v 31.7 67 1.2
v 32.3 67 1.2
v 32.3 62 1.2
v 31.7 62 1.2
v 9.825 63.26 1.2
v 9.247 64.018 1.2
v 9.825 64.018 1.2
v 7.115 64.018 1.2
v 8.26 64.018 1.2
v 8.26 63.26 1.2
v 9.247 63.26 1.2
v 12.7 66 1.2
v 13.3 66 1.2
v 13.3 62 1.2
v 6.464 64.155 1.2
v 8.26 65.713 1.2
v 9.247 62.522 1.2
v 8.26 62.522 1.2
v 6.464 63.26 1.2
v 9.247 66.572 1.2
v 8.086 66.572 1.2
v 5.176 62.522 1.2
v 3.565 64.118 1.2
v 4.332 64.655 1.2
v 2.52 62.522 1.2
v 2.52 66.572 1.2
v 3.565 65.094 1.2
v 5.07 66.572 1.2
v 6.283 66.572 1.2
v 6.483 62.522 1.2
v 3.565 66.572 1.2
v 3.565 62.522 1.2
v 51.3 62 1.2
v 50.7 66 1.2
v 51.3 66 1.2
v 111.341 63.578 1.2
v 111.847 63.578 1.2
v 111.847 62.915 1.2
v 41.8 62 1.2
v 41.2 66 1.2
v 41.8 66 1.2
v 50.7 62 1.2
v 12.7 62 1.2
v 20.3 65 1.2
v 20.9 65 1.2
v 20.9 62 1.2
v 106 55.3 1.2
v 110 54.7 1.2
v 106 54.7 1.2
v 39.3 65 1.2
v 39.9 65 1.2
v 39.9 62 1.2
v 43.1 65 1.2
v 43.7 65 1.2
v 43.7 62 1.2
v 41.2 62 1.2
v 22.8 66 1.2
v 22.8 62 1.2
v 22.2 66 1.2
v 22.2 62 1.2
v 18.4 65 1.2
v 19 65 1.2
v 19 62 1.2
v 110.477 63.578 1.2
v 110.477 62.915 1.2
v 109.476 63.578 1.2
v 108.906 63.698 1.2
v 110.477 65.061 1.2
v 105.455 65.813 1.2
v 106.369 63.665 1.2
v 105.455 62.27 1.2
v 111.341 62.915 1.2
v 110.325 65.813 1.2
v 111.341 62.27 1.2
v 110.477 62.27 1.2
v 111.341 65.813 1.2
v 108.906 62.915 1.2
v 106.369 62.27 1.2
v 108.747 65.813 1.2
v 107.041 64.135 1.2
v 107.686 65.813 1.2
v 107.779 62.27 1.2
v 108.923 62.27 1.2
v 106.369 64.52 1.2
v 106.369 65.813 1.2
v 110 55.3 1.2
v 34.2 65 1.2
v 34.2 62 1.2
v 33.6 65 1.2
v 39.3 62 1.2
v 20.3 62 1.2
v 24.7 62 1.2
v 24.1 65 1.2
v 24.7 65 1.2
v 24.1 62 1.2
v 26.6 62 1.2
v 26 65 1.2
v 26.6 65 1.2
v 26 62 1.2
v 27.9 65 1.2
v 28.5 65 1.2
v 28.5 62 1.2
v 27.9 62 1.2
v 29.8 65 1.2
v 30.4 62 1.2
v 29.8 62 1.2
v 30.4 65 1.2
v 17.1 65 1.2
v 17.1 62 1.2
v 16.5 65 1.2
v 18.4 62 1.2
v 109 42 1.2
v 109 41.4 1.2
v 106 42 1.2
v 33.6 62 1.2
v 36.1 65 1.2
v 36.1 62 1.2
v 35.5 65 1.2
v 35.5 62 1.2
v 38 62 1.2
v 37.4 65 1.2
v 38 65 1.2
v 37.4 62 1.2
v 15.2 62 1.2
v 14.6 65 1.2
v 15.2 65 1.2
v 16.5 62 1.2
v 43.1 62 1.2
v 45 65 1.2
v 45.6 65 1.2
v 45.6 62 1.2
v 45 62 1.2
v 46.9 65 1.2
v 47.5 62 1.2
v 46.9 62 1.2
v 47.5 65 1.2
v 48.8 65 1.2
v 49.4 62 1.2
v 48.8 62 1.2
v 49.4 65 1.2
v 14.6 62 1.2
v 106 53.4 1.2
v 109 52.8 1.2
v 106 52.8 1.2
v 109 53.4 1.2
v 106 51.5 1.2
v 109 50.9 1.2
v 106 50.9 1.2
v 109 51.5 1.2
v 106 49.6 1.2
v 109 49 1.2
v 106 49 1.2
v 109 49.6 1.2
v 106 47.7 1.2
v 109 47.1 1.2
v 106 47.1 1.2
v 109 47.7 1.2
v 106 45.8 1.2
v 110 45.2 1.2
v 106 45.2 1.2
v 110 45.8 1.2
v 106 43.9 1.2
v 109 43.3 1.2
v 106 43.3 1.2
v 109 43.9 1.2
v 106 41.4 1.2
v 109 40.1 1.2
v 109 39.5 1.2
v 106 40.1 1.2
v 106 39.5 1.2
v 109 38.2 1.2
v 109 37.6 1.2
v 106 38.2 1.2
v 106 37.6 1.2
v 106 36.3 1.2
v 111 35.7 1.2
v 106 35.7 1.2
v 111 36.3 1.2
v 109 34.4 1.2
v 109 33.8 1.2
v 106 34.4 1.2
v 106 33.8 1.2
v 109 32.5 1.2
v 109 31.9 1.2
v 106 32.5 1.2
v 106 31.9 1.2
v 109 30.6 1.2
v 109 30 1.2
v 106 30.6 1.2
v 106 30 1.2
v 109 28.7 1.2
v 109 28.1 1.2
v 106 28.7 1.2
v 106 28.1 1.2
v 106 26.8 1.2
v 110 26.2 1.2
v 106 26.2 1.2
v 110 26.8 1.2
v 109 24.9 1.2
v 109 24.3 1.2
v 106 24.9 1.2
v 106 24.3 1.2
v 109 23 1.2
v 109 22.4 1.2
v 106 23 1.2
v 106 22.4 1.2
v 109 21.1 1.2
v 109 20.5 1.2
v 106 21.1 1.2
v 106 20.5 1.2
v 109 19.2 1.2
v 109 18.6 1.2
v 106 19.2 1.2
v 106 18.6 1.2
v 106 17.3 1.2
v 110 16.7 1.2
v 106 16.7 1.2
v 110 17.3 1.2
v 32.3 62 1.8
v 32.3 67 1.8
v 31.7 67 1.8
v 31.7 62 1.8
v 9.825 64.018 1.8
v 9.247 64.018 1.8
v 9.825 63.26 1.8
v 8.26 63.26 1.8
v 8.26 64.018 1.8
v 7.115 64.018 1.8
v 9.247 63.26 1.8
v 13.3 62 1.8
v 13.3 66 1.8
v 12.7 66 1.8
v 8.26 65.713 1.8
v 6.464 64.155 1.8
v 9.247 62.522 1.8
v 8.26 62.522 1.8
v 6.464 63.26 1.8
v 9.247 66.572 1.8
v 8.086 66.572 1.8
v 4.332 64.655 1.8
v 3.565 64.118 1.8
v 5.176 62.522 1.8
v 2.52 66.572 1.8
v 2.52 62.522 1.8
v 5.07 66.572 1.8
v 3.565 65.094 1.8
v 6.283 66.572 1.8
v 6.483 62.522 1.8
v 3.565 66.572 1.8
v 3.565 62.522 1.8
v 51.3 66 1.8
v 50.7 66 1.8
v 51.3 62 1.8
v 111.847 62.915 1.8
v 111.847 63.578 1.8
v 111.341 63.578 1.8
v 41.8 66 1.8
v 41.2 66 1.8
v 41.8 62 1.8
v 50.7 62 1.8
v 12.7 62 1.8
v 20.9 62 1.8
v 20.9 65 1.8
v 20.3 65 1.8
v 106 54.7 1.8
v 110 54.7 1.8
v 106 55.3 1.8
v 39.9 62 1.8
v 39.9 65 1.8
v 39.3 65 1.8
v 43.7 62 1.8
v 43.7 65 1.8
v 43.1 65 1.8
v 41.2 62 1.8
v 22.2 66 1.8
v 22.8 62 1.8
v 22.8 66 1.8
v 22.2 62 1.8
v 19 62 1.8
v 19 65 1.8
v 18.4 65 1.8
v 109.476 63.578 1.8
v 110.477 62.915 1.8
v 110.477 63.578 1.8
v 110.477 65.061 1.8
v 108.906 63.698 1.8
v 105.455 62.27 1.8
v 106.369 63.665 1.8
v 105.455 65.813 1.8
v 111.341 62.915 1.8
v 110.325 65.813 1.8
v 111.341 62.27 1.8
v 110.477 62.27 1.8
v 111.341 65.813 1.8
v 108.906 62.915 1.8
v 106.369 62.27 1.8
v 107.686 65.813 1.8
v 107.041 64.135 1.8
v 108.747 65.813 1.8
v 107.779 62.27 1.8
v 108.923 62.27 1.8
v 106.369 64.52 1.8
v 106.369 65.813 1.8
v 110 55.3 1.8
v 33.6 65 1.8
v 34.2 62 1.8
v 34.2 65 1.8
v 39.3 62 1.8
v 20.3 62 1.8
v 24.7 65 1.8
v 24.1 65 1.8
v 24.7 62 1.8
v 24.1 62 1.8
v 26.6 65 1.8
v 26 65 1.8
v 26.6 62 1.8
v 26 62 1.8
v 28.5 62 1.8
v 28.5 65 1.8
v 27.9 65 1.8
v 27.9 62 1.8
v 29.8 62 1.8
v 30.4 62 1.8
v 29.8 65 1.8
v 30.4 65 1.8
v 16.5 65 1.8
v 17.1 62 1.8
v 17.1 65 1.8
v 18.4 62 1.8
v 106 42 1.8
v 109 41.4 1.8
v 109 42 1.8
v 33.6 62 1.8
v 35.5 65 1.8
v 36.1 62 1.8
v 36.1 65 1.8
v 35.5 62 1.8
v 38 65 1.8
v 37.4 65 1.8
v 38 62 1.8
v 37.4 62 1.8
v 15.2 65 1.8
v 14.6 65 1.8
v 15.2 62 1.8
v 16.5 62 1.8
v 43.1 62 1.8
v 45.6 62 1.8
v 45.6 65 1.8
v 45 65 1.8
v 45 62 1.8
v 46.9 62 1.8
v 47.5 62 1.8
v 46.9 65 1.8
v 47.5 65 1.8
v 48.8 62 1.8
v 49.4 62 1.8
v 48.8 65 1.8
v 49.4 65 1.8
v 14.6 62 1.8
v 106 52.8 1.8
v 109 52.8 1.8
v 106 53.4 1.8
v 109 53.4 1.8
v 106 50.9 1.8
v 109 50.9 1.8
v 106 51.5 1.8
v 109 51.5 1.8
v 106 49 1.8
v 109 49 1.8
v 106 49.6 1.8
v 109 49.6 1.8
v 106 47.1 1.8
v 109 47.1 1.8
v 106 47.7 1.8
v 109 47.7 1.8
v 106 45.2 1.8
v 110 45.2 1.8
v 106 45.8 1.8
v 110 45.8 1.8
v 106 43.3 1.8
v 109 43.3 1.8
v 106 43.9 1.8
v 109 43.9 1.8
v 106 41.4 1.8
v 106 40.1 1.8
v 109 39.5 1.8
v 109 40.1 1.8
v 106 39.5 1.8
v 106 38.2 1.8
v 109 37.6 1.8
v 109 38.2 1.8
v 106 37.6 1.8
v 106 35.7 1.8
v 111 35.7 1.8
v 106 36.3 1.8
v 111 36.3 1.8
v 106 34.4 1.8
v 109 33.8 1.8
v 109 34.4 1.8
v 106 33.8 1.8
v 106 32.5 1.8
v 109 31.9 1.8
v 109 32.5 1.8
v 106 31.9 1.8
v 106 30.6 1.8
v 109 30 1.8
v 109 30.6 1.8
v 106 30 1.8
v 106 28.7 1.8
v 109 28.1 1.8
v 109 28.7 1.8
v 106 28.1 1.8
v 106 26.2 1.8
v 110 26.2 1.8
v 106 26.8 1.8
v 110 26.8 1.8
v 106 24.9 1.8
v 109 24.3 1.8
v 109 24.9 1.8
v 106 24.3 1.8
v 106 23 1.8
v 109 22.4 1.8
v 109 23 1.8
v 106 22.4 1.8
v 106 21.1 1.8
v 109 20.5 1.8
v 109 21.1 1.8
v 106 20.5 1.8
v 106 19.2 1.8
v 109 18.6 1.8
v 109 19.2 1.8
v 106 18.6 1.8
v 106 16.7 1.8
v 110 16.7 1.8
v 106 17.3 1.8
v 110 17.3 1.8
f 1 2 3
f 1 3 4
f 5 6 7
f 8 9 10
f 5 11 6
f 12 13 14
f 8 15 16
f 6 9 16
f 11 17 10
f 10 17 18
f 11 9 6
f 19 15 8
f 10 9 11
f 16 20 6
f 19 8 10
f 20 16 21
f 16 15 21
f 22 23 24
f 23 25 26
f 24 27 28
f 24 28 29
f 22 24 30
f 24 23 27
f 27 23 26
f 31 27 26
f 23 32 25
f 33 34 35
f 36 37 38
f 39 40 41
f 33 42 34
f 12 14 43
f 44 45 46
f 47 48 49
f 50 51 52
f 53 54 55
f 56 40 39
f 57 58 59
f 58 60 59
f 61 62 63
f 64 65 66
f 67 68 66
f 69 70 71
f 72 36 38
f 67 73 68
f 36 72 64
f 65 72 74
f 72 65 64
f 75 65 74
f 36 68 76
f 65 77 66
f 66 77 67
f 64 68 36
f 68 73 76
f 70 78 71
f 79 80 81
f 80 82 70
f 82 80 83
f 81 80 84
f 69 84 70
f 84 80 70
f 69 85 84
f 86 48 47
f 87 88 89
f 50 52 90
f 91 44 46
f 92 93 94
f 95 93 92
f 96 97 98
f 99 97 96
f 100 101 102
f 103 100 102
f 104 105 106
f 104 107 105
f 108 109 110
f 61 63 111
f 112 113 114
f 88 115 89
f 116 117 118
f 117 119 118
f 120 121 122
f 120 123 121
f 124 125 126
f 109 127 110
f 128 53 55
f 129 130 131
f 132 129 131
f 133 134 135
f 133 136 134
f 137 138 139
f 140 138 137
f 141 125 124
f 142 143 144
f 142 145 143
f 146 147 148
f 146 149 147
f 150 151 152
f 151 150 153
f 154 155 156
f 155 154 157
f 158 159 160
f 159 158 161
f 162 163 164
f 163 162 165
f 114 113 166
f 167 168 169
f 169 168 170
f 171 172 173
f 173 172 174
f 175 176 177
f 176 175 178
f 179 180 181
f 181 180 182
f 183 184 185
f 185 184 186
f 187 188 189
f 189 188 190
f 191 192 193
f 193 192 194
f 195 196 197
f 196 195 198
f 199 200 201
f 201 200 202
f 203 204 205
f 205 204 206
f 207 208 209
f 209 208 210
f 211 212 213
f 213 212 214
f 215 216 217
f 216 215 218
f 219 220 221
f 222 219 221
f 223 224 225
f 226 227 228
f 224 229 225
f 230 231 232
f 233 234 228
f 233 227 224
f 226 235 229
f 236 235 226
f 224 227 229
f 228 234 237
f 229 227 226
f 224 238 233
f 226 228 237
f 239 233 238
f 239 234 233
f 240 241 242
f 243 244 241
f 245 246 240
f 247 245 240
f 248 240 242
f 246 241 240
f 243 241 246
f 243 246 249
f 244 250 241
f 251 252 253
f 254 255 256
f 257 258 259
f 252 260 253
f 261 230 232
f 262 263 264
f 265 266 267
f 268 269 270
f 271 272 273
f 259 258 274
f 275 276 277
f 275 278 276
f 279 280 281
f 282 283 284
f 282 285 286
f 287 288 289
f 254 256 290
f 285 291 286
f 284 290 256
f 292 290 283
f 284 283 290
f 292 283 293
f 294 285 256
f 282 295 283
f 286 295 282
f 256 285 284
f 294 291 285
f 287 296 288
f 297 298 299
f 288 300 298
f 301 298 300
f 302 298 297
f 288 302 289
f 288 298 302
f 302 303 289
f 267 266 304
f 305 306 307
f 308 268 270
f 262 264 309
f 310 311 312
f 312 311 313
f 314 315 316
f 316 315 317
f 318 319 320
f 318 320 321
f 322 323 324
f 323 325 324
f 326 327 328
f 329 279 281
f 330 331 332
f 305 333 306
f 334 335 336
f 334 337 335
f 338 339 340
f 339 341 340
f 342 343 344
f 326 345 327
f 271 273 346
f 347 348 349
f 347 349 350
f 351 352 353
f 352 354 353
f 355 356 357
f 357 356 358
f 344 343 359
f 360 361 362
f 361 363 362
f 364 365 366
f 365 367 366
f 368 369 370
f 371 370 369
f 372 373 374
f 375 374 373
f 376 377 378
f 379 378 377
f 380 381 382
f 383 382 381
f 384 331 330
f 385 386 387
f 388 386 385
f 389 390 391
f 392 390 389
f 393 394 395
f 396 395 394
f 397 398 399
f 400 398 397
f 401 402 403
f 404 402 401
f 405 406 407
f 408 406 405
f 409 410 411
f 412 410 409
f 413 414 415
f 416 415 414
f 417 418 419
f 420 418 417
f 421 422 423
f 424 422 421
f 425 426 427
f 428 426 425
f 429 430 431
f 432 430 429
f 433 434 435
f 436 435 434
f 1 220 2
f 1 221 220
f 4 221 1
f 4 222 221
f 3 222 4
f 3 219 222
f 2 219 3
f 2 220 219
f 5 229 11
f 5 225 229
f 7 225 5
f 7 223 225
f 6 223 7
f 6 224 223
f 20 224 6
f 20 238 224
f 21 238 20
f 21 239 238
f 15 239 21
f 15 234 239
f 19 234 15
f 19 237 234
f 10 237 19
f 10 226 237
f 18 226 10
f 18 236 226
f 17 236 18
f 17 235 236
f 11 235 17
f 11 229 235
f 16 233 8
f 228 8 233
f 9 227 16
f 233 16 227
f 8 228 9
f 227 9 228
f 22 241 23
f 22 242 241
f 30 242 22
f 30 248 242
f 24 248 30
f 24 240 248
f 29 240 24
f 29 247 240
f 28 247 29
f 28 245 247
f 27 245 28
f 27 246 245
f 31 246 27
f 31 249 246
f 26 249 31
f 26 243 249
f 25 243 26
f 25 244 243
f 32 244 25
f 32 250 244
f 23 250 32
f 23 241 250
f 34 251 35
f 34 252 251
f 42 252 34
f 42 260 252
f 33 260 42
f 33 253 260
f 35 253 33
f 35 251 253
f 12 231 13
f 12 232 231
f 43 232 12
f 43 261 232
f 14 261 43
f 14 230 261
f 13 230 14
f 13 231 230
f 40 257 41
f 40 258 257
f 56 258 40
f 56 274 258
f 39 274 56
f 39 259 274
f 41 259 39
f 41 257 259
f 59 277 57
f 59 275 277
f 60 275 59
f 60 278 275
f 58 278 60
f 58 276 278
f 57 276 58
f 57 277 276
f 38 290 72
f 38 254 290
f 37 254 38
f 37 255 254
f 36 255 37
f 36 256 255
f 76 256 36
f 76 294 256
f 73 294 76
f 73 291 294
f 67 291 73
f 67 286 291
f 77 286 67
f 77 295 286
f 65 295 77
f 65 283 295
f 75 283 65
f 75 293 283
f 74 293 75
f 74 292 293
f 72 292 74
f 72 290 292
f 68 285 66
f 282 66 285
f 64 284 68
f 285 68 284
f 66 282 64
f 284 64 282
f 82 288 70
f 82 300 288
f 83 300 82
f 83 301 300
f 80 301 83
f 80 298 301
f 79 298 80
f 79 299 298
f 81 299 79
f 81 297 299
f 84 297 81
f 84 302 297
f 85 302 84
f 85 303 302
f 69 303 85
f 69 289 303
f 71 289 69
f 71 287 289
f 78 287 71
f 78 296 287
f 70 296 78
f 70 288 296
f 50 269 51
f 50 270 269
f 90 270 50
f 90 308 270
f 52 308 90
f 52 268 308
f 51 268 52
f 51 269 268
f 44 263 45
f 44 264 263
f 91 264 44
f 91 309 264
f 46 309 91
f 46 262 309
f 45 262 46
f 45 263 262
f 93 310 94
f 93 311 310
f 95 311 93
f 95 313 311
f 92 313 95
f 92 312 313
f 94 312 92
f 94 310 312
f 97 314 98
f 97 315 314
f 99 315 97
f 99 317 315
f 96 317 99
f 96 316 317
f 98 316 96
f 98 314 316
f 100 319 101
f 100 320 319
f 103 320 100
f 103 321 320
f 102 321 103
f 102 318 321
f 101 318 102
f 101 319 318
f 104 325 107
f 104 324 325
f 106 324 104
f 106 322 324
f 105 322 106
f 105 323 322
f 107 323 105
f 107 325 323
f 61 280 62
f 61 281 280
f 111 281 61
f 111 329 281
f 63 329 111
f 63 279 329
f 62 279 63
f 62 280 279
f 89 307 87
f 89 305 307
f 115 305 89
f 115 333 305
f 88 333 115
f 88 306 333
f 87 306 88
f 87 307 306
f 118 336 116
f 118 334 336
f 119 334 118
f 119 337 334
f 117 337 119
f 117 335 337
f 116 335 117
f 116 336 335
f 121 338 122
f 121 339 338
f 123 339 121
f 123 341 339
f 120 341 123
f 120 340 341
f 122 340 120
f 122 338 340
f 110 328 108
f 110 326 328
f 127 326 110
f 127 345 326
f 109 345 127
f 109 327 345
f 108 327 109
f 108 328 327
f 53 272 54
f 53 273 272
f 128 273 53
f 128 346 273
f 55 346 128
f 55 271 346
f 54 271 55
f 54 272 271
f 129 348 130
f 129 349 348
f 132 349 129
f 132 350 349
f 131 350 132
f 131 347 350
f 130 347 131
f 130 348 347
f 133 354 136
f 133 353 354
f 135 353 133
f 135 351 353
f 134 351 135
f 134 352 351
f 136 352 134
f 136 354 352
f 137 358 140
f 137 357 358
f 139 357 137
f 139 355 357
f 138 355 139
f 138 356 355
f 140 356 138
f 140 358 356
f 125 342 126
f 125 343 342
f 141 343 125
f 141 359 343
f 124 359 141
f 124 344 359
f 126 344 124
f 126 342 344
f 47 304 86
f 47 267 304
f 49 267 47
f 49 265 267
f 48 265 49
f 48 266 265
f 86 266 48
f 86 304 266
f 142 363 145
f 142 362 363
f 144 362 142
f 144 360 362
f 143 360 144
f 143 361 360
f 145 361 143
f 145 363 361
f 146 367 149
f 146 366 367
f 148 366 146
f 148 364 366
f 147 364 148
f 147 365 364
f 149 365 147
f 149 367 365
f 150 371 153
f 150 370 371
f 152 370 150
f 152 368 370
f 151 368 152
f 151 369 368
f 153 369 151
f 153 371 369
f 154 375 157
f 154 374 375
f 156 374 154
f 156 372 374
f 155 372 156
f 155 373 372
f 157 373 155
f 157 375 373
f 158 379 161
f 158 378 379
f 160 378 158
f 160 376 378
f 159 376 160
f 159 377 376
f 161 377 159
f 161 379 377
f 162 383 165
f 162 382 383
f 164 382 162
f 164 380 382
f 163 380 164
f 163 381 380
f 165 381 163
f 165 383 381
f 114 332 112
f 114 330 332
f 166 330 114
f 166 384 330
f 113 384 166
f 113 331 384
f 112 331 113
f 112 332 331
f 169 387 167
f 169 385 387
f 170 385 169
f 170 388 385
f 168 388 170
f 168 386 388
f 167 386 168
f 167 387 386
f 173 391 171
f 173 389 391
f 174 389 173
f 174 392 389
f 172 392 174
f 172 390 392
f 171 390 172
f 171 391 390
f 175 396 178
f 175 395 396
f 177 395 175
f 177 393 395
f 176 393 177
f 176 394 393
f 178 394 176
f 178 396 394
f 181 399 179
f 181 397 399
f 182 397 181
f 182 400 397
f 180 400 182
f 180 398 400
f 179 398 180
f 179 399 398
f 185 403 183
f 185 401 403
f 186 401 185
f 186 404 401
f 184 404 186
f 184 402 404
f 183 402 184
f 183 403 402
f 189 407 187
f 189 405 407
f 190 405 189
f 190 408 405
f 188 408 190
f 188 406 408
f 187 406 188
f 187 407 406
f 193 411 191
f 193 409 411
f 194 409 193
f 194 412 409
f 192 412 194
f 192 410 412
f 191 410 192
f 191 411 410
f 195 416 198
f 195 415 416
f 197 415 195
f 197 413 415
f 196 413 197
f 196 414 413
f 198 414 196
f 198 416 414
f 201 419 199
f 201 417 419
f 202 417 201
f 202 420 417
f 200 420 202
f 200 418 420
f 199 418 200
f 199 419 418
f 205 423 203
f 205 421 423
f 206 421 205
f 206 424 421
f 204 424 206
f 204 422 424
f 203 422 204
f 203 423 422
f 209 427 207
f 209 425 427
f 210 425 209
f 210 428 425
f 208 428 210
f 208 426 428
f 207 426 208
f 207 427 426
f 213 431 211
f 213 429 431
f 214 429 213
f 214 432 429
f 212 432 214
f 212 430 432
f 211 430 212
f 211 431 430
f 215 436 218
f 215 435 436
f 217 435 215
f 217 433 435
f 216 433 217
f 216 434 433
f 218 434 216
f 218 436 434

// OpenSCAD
// file: versatz.scad
// Kalibrierung 3 – Kopf-Versatz (Vier-Kopf-Passermarke). Gemeinsame Geometrie für versatz_k1…k4.scad.
// Grundplatte + Hauptskalen = Kopf 1. Je Kopf 2–4 ein Nonius in X (Zeilen) und in Y (Spalten) + Beschriftung.
// Hauptskala Teilung 2,0 mm, Nonius 1,9 mm → Ablesung 0,1 mm, Bereich ±1,0 mm (Index −10…+10).
// Die Strichreihen von Kopf 1 und Kopf n stoßen an einer gemeinsamen Linie aneinander (nie überlappend).
platte = [112, 80, 1.2];    // Grundplatte (6 Schichten à 0,2)
erhaben = 0.6;              // Strich- und Schrifthöhe über der Platte
strich_b = 0.6;             // Strichbreite (≥ 1,5 × Düse)
strich_l = 3.0;             // Strichlänge je Reihe
haupt = 2.0; nonius = 1.9; n = 10;
schrift = "DejaVu Sans:style=Bold";
zeilen_y = [14, 38, 62];    // X-Nonien: Grenzlinie bei diesem y (Kopf 1 darunter, Kopf n darüber)
x_mitte = 32;
spalten_x = [78, 92, 106];  // Y-Nonien: Grenzlinie bei diesem x (Kopf 1 links, Kopf n rechts)
y_mitte = 36;

function _lang(i) = (i == 0) ? 2.0 : (i % 5 == 0) ? 1.0 : 0;   // längere Striche bei 0, ±5, ±10

module _striche_x(teil, aussen) {   // Striche senkrecht, entlang X; aussen = +1 nach oben, −1 nach unten
  for (i = [-n:n]) let(l = strich_l + _lang(i))
    translate([x_mitte + i*teil - strich_b/2, aussen > 0 ? 0 : -l]) square([strich_b, l]);
}
module _striche_y(teil, aussen) {
  for (i = [-n:n]) let(l = strich_l + _lang(i))
    translate([aussen > 0 ? 0 : -l, y_mitte + i*teil - strich_b/2]) square([l, strich_b]);
}
module _beschr(t, s=4) text(t, size=s, font=schrift, halign="center", valign="center");

module versatz(kopf) {
  if (kopf == 1) {
    cube(platte);
    translate([0,0,platte[2]-0.01]) linear_extrude(erhaben+0.01) {
      for (y = zeilen_y) translate([0, y]) _striche_x(haupt, -1);
      for (x = spalten_x) translate([x, 0]) _striche_y(haupt, -1);
      translate([x_mitte + n*haupt + 4.5, zeilen_y[0] - 6]) _beschr("+X", 3);
      translate([spalten_x[0] - 6, y_mitte + n*haupt + 4.5]) _beschr("+Y", 3);
      translate([8, 75]) _beschr("K1", 4);
    }
  } else {
    k = kopf - 2;
    translate([0,0,platte[2]]) linear_extrude(erhaben) {
      translate([0, zeilen_y[k]]) _striche_x(nonius, +1);
      translate([spalten_x[k], 0]) _striche_y(nonius, +1);
      translate([6, zeilen_y[k] + 2.5]) _beschr(str("K", kopf), 4);
      translate([spalten_x[k] + 2.5, y_mitte + n*haupt + 8]) _beschr(str("K", kopf), 3.5);
    }
  }
}
// main file
// Kalibrierung 3 – Kopf-Versatz, Farbkörper für Kopf 4 (gleiche Koordinaten wie die anderen versatz_k*.scad)
use <versatz.scad>
versatz(4);
